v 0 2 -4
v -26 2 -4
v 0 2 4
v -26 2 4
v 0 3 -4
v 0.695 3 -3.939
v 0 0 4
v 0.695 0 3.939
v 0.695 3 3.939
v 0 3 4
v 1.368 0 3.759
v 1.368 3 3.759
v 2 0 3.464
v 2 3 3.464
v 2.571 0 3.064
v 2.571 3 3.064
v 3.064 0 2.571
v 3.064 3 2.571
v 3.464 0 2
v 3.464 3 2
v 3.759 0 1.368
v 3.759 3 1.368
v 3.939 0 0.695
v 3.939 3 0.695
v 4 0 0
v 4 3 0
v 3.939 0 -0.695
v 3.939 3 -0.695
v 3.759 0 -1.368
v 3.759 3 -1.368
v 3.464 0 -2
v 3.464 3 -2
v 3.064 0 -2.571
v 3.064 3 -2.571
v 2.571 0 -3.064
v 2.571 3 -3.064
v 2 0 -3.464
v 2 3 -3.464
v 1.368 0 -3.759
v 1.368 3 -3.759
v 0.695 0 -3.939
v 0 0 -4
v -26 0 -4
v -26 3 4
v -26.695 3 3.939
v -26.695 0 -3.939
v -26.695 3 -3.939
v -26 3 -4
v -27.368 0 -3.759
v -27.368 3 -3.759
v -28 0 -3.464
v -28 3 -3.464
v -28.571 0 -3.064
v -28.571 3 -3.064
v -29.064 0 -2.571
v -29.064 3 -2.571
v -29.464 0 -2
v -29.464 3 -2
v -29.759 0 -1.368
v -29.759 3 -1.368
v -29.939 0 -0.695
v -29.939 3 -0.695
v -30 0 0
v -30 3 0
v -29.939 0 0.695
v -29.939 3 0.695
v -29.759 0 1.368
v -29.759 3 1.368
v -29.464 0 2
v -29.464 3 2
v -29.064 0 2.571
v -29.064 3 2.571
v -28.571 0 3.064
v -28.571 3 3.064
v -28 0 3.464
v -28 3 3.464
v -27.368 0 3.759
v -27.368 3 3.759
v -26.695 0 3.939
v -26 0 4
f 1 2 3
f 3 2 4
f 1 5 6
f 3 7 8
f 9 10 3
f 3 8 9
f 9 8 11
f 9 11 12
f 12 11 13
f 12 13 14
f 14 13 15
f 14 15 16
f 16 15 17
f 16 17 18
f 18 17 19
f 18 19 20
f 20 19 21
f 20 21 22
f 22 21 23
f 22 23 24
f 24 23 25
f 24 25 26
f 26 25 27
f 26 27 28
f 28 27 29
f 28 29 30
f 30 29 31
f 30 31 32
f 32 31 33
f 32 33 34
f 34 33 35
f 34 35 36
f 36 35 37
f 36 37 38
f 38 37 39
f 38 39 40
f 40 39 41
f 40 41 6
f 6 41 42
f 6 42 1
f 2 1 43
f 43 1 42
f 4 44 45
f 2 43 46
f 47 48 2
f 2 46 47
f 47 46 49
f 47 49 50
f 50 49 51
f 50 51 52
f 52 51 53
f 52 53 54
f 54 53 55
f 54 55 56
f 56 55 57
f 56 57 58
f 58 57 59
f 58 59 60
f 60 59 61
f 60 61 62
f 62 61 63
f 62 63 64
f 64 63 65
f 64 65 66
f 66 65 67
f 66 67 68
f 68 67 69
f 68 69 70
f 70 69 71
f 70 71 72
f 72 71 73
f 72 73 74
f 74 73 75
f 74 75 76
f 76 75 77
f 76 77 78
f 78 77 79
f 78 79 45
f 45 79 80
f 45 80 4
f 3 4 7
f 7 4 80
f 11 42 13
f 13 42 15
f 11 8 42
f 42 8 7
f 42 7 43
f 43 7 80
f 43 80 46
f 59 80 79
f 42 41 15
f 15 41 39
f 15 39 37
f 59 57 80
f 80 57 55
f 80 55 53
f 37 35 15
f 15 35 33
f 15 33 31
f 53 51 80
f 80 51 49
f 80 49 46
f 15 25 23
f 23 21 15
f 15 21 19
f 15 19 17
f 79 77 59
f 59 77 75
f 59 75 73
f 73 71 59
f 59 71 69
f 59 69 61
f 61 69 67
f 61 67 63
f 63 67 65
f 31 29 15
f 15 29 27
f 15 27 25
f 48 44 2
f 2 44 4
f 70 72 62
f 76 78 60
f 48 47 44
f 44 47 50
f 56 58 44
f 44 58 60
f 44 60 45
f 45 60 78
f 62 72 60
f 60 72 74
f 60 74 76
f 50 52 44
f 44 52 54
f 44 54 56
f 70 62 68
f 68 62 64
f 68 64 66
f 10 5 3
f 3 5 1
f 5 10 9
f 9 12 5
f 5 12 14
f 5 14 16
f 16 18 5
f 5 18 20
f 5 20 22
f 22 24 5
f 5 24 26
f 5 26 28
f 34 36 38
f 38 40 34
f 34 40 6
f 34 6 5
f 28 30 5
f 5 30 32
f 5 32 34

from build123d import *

# Parameters (mm, degrees)
BOSS_EXTRUDE1_DEPTH = 2
BOSS_EXTRUDE2_DEPTH = 1


with BuildPart() as part:
    # Sketch1 → Boss-Extrude1 (new body)
    with BuildSketch(Plane(origin=(0, 0, 0), x_dir=(1, 0, 0), z_dir=(0, 1, 0))):
        with BuildLine():
            Line((0, -4), (-26, -4))
            ThreePointArc((-26, -4), (-30, 0), (-26, 4))
            Line((-26, 4), (0, 4))
            ThreePointArc((0, 4), (4, 0), (0, -4))
        make_face()
    extrude(amount=BOSS_EXTRUDE1_DEPTH)

    # Sketch2 → Boss-Extrude2 (add)
    with BuildSketch(Plane(origin=(0, 2, 0), x_dir=(1, 0, 0), z_dir=(0, 1, 0))):
        with BuildLine():
            Line((-26, 4), (-26, -4))
            ThreePointArc((-26, -4), (-28.828427125, -2.828427125), (-30, 0))
            ThreePointArc((-30, 0), (-28.828427125, 2.828427125), (-26, 4))
        make_face()
        with BuildLine():
            Line((0, 4), (0, -4))
            ThreePointArc((0, -4), (4, 0), (0, 4))
        make_face()
    extrude(amount=BOSS_EXTRUDE2_DEPTH)


solid = part.part
